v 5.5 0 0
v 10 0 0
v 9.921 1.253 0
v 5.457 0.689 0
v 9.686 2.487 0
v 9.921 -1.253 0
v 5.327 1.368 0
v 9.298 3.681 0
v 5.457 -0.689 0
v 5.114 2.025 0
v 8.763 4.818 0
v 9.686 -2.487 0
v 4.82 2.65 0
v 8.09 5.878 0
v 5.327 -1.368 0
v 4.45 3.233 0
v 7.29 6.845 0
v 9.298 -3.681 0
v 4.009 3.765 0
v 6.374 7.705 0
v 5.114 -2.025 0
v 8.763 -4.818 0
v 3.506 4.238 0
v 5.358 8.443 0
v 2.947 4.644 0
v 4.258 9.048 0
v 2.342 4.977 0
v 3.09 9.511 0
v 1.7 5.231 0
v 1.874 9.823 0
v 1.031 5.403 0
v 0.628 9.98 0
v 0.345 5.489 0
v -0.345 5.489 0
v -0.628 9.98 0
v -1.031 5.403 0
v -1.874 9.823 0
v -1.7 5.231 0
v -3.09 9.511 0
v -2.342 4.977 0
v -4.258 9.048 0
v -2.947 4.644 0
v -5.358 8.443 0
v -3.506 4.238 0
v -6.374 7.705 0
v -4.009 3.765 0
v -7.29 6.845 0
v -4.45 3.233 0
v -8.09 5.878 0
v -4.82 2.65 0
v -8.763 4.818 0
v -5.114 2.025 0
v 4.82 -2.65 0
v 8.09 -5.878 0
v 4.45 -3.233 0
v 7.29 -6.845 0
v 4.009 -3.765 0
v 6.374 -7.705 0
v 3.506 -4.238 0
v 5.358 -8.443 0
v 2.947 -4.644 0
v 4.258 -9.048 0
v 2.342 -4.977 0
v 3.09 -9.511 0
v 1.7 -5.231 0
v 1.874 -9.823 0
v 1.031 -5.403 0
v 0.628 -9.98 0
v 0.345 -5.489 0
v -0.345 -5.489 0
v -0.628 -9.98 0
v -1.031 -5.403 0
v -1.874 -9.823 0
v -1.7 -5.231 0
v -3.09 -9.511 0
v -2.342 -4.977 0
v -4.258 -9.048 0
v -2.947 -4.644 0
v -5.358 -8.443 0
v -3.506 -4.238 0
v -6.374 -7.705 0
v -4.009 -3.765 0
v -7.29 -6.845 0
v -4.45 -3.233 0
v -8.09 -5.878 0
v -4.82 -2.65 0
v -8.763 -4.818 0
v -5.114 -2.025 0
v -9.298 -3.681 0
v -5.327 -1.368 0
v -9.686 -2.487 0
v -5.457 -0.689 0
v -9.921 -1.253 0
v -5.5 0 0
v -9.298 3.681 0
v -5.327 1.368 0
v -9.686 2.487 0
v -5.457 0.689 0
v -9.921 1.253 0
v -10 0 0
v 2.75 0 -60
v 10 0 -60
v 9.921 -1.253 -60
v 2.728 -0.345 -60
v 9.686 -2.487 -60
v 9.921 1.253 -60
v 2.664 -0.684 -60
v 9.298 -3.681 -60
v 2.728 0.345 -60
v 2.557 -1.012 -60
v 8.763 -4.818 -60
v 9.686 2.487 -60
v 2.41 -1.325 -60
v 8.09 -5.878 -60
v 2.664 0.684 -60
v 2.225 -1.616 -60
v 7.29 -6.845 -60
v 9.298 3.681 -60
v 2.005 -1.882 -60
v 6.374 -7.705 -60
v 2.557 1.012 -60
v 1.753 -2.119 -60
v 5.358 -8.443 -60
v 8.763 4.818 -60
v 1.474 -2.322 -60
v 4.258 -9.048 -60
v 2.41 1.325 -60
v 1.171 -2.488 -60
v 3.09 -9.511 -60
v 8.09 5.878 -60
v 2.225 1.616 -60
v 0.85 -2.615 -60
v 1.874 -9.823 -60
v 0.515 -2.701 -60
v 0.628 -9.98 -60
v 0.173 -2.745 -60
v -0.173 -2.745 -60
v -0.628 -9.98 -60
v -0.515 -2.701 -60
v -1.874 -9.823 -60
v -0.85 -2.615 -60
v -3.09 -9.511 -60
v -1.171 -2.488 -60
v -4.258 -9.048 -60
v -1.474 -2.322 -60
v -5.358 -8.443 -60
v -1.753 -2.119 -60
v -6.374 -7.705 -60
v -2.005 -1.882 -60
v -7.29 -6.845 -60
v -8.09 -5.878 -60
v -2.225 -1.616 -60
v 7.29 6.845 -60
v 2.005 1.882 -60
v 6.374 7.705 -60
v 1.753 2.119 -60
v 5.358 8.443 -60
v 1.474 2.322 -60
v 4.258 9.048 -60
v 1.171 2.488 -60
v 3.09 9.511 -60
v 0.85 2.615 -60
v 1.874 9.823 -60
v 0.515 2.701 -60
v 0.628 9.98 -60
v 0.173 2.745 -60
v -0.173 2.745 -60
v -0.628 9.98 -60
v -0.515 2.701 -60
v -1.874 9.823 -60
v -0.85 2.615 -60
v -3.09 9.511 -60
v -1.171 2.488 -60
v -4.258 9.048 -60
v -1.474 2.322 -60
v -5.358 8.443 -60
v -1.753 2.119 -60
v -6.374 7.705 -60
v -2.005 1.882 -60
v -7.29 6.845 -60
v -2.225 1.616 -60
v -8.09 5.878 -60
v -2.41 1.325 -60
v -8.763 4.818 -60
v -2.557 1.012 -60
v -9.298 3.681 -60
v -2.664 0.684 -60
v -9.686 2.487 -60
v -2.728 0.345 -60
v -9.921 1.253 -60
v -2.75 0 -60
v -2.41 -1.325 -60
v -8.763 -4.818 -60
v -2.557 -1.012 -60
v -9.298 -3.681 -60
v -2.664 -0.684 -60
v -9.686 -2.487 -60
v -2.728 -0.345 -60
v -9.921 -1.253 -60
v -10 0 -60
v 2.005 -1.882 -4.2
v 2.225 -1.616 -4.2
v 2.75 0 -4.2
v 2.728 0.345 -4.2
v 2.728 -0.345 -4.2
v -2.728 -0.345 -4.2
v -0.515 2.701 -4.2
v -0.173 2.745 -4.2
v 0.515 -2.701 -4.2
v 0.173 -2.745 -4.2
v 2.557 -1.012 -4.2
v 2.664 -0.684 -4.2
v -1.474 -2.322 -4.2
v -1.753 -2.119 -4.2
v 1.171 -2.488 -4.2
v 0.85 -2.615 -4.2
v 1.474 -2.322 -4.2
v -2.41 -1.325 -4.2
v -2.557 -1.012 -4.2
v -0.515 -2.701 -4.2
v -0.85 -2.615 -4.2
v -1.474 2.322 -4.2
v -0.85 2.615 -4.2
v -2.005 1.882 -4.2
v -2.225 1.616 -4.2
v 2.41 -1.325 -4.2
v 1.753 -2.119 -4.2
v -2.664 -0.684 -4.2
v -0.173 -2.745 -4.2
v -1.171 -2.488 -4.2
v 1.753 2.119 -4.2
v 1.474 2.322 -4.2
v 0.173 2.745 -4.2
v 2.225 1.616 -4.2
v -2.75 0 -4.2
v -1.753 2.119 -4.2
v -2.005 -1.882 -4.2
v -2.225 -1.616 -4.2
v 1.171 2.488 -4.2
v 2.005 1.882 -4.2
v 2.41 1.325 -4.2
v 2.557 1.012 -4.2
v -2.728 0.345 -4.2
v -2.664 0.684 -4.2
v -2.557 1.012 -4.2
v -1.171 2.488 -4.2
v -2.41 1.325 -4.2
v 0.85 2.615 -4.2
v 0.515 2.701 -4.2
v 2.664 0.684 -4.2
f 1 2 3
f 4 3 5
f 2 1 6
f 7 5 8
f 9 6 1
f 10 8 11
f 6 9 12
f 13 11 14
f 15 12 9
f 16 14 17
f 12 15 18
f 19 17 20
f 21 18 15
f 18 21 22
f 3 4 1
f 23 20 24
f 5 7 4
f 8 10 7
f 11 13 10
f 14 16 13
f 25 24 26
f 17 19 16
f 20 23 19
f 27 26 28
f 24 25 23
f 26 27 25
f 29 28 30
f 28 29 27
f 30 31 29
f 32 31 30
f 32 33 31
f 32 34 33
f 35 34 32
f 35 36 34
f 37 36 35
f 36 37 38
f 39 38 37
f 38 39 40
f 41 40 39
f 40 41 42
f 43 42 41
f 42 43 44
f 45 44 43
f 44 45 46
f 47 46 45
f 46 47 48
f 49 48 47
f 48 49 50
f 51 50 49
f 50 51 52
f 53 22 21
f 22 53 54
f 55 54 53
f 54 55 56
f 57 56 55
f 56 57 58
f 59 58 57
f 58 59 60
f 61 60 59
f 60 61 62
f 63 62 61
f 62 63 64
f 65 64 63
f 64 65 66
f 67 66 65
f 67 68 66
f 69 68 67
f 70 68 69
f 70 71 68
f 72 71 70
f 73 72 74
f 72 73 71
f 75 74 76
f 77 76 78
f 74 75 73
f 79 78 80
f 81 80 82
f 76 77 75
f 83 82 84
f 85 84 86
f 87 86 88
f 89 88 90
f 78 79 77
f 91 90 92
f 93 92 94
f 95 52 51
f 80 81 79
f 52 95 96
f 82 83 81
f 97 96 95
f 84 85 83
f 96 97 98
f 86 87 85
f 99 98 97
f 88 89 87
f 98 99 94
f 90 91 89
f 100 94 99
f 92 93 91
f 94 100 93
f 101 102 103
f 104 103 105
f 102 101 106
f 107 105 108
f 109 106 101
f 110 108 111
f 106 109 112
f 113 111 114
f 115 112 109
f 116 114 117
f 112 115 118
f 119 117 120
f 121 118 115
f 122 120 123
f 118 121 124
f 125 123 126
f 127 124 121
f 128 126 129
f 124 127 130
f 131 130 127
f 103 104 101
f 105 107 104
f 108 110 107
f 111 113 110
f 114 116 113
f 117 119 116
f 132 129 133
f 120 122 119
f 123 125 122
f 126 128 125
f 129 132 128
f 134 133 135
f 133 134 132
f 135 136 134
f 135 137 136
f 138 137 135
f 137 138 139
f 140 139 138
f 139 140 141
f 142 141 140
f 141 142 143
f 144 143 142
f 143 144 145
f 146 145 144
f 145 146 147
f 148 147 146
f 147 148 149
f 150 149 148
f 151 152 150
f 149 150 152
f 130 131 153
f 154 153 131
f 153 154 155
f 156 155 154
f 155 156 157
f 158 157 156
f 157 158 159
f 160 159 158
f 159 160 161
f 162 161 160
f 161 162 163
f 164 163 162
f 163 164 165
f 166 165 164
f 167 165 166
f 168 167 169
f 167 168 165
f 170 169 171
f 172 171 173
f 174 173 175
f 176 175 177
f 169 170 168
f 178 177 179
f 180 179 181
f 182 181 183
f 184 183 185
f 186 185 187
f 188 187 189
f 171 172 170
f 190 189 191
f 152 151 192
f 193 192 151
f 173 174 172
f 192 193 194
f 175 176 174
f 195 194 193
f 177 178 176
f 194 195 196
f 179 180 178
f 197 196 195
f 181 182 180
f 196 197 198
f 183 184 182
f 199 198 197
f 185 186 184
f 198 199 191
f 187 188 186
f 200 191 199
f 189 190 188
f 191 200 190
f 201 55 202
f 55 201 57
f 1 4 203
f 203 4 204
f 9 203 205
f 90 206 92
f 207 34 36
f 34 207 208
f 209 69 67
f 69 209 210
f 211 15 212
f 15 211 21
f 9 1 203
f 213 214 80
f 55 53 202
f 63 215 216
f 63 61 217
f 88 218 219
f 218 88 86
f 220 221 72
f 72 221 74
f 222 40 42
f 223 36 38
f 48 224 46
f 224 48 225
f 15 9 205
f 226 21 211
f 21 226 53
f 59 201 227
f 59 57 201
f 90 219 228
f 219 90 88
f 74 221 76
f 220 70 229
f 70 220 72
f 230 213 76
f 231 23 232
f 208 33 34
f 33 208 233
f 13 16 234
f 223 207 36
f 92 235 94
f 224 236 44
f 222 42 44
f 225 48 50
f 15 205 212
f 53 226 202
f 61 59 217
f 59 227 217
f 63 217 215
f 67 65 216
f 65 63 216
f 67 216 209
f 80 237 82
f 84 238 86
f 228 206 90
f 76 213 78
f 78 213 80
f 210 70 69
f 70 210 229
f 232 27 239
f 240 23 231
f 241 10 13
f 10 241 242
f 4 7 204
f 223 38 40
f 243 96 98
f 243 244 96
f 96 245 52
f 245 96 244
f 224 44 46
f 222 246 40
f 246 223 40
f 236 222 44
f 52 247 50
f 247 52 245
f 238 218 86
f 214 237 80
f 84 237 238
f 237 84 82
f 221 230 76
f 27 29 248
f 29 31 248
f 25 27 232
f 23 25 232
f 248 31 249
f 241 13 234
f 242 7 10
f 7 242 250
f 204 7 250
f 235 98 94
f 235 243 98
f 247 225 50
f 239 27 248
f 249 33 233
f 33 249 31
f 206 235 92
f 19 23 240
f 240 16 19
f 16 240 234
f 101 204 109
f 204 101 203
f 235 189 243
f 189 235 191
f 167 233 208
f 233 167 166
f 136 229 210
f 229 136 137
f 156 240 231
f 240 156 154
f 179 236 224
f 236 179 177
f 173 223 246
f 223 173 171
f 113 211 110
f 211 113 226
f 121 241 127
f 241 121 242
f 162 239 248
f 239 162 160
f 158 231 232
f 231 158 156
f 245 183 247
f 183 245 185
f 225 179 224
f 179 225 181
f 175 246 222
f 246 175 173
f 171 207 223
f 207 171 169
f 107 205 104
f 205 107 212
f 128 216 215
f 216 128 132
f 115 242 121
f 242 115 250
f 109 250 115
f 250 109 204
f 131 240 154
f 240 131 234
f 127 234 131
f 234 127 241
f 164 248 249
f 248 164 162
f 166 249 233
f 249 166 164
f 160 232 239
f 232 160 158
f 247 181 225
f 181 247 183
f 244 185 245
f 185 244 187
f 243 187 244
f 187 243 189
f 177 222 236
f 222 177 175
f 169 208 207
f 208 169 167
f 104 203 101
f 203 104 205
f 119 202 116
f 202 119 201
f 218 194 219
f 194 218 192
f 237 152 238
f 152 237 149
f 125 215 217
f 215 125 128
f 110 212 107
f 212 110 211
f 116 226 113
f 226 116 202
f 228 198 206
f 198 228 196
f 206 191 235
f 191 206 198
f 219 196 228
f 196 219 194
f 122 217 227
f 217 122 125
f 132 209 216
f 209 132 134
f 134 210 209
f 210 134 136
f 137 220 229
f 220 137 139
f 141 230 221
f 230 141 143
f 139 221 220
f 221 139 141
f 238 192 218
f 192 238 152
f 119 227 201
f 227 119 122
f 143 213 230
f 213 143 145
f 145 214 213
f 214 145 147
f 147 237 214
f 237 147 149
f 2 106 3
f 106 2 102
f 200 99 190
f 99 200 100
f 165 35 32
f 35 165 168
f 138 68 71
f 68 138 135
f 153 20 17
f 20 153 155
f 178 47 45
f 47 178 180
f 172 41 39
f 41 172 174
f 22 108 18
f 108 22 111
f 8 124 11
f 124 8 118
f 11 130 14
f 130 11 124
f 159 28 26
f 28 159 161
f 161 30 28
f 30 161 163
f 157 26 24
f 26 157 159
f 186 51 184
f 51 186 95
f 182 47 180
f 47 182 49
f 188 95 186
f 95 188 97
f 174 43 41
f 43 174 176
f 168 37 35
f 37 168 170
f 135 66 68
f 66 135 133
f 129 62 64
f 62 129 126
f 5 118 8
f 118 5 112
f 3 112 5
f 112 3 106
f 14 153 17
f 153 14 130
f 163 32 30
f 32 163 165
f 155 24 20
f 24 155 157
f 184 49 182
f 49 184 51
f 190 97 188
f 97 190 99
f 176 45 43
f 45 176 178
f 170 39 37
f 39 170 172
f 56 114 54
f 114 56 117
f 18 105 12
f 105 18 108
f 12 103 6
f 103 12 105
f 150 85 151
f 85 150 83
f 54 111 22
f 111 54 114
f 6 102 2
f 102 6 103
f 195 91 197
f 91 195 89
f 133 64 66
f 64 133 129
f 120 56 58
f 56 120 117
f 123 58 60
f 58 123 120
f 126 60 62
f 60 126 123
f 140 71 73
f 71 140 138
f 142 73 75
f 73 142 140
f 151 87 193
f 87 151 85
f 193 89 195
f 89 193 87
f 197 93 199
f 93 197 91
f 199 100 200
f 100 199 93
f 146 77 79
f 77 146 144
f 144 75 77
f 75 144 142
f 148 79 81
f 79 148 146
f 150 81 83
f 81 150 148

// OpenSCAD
$fn = 50;


difference() {
	union() {
		translate(v = [0, 0, -60.0000000000]) {
			cylinder(h = 60, r = 10.0000000000);
		}
		cylinder(h = 0, r = 19.0000000000);
	}
	union() {
		translate(v = [0, 0, 0]) {
			rotate(a = [0, 0, 0]) {
				difference() {
					union() {
						#translate(v = [0, 0, -60.0000000000]) {
							cylinder(h = 60, r = 2.2500000000);
						}
						#translate(v = [0, 0, -4.2000000000]) {
							cylinder(h = 4.2000000000, r = 10.0000000000, r1 = 2.7500000000, r2 = 5.5000000000);
						}
						#translate(v = [0, 0, -60.0000000000]) {
							cylinder(h = 60, r = 2.7500000000);
						}
						#translate(v = [0, 0, -60.0000000000]) {
							cylinder(h = 60, r = 2.2500000000);
						}
					}
					union();
				}
			}
		}
	}
}
